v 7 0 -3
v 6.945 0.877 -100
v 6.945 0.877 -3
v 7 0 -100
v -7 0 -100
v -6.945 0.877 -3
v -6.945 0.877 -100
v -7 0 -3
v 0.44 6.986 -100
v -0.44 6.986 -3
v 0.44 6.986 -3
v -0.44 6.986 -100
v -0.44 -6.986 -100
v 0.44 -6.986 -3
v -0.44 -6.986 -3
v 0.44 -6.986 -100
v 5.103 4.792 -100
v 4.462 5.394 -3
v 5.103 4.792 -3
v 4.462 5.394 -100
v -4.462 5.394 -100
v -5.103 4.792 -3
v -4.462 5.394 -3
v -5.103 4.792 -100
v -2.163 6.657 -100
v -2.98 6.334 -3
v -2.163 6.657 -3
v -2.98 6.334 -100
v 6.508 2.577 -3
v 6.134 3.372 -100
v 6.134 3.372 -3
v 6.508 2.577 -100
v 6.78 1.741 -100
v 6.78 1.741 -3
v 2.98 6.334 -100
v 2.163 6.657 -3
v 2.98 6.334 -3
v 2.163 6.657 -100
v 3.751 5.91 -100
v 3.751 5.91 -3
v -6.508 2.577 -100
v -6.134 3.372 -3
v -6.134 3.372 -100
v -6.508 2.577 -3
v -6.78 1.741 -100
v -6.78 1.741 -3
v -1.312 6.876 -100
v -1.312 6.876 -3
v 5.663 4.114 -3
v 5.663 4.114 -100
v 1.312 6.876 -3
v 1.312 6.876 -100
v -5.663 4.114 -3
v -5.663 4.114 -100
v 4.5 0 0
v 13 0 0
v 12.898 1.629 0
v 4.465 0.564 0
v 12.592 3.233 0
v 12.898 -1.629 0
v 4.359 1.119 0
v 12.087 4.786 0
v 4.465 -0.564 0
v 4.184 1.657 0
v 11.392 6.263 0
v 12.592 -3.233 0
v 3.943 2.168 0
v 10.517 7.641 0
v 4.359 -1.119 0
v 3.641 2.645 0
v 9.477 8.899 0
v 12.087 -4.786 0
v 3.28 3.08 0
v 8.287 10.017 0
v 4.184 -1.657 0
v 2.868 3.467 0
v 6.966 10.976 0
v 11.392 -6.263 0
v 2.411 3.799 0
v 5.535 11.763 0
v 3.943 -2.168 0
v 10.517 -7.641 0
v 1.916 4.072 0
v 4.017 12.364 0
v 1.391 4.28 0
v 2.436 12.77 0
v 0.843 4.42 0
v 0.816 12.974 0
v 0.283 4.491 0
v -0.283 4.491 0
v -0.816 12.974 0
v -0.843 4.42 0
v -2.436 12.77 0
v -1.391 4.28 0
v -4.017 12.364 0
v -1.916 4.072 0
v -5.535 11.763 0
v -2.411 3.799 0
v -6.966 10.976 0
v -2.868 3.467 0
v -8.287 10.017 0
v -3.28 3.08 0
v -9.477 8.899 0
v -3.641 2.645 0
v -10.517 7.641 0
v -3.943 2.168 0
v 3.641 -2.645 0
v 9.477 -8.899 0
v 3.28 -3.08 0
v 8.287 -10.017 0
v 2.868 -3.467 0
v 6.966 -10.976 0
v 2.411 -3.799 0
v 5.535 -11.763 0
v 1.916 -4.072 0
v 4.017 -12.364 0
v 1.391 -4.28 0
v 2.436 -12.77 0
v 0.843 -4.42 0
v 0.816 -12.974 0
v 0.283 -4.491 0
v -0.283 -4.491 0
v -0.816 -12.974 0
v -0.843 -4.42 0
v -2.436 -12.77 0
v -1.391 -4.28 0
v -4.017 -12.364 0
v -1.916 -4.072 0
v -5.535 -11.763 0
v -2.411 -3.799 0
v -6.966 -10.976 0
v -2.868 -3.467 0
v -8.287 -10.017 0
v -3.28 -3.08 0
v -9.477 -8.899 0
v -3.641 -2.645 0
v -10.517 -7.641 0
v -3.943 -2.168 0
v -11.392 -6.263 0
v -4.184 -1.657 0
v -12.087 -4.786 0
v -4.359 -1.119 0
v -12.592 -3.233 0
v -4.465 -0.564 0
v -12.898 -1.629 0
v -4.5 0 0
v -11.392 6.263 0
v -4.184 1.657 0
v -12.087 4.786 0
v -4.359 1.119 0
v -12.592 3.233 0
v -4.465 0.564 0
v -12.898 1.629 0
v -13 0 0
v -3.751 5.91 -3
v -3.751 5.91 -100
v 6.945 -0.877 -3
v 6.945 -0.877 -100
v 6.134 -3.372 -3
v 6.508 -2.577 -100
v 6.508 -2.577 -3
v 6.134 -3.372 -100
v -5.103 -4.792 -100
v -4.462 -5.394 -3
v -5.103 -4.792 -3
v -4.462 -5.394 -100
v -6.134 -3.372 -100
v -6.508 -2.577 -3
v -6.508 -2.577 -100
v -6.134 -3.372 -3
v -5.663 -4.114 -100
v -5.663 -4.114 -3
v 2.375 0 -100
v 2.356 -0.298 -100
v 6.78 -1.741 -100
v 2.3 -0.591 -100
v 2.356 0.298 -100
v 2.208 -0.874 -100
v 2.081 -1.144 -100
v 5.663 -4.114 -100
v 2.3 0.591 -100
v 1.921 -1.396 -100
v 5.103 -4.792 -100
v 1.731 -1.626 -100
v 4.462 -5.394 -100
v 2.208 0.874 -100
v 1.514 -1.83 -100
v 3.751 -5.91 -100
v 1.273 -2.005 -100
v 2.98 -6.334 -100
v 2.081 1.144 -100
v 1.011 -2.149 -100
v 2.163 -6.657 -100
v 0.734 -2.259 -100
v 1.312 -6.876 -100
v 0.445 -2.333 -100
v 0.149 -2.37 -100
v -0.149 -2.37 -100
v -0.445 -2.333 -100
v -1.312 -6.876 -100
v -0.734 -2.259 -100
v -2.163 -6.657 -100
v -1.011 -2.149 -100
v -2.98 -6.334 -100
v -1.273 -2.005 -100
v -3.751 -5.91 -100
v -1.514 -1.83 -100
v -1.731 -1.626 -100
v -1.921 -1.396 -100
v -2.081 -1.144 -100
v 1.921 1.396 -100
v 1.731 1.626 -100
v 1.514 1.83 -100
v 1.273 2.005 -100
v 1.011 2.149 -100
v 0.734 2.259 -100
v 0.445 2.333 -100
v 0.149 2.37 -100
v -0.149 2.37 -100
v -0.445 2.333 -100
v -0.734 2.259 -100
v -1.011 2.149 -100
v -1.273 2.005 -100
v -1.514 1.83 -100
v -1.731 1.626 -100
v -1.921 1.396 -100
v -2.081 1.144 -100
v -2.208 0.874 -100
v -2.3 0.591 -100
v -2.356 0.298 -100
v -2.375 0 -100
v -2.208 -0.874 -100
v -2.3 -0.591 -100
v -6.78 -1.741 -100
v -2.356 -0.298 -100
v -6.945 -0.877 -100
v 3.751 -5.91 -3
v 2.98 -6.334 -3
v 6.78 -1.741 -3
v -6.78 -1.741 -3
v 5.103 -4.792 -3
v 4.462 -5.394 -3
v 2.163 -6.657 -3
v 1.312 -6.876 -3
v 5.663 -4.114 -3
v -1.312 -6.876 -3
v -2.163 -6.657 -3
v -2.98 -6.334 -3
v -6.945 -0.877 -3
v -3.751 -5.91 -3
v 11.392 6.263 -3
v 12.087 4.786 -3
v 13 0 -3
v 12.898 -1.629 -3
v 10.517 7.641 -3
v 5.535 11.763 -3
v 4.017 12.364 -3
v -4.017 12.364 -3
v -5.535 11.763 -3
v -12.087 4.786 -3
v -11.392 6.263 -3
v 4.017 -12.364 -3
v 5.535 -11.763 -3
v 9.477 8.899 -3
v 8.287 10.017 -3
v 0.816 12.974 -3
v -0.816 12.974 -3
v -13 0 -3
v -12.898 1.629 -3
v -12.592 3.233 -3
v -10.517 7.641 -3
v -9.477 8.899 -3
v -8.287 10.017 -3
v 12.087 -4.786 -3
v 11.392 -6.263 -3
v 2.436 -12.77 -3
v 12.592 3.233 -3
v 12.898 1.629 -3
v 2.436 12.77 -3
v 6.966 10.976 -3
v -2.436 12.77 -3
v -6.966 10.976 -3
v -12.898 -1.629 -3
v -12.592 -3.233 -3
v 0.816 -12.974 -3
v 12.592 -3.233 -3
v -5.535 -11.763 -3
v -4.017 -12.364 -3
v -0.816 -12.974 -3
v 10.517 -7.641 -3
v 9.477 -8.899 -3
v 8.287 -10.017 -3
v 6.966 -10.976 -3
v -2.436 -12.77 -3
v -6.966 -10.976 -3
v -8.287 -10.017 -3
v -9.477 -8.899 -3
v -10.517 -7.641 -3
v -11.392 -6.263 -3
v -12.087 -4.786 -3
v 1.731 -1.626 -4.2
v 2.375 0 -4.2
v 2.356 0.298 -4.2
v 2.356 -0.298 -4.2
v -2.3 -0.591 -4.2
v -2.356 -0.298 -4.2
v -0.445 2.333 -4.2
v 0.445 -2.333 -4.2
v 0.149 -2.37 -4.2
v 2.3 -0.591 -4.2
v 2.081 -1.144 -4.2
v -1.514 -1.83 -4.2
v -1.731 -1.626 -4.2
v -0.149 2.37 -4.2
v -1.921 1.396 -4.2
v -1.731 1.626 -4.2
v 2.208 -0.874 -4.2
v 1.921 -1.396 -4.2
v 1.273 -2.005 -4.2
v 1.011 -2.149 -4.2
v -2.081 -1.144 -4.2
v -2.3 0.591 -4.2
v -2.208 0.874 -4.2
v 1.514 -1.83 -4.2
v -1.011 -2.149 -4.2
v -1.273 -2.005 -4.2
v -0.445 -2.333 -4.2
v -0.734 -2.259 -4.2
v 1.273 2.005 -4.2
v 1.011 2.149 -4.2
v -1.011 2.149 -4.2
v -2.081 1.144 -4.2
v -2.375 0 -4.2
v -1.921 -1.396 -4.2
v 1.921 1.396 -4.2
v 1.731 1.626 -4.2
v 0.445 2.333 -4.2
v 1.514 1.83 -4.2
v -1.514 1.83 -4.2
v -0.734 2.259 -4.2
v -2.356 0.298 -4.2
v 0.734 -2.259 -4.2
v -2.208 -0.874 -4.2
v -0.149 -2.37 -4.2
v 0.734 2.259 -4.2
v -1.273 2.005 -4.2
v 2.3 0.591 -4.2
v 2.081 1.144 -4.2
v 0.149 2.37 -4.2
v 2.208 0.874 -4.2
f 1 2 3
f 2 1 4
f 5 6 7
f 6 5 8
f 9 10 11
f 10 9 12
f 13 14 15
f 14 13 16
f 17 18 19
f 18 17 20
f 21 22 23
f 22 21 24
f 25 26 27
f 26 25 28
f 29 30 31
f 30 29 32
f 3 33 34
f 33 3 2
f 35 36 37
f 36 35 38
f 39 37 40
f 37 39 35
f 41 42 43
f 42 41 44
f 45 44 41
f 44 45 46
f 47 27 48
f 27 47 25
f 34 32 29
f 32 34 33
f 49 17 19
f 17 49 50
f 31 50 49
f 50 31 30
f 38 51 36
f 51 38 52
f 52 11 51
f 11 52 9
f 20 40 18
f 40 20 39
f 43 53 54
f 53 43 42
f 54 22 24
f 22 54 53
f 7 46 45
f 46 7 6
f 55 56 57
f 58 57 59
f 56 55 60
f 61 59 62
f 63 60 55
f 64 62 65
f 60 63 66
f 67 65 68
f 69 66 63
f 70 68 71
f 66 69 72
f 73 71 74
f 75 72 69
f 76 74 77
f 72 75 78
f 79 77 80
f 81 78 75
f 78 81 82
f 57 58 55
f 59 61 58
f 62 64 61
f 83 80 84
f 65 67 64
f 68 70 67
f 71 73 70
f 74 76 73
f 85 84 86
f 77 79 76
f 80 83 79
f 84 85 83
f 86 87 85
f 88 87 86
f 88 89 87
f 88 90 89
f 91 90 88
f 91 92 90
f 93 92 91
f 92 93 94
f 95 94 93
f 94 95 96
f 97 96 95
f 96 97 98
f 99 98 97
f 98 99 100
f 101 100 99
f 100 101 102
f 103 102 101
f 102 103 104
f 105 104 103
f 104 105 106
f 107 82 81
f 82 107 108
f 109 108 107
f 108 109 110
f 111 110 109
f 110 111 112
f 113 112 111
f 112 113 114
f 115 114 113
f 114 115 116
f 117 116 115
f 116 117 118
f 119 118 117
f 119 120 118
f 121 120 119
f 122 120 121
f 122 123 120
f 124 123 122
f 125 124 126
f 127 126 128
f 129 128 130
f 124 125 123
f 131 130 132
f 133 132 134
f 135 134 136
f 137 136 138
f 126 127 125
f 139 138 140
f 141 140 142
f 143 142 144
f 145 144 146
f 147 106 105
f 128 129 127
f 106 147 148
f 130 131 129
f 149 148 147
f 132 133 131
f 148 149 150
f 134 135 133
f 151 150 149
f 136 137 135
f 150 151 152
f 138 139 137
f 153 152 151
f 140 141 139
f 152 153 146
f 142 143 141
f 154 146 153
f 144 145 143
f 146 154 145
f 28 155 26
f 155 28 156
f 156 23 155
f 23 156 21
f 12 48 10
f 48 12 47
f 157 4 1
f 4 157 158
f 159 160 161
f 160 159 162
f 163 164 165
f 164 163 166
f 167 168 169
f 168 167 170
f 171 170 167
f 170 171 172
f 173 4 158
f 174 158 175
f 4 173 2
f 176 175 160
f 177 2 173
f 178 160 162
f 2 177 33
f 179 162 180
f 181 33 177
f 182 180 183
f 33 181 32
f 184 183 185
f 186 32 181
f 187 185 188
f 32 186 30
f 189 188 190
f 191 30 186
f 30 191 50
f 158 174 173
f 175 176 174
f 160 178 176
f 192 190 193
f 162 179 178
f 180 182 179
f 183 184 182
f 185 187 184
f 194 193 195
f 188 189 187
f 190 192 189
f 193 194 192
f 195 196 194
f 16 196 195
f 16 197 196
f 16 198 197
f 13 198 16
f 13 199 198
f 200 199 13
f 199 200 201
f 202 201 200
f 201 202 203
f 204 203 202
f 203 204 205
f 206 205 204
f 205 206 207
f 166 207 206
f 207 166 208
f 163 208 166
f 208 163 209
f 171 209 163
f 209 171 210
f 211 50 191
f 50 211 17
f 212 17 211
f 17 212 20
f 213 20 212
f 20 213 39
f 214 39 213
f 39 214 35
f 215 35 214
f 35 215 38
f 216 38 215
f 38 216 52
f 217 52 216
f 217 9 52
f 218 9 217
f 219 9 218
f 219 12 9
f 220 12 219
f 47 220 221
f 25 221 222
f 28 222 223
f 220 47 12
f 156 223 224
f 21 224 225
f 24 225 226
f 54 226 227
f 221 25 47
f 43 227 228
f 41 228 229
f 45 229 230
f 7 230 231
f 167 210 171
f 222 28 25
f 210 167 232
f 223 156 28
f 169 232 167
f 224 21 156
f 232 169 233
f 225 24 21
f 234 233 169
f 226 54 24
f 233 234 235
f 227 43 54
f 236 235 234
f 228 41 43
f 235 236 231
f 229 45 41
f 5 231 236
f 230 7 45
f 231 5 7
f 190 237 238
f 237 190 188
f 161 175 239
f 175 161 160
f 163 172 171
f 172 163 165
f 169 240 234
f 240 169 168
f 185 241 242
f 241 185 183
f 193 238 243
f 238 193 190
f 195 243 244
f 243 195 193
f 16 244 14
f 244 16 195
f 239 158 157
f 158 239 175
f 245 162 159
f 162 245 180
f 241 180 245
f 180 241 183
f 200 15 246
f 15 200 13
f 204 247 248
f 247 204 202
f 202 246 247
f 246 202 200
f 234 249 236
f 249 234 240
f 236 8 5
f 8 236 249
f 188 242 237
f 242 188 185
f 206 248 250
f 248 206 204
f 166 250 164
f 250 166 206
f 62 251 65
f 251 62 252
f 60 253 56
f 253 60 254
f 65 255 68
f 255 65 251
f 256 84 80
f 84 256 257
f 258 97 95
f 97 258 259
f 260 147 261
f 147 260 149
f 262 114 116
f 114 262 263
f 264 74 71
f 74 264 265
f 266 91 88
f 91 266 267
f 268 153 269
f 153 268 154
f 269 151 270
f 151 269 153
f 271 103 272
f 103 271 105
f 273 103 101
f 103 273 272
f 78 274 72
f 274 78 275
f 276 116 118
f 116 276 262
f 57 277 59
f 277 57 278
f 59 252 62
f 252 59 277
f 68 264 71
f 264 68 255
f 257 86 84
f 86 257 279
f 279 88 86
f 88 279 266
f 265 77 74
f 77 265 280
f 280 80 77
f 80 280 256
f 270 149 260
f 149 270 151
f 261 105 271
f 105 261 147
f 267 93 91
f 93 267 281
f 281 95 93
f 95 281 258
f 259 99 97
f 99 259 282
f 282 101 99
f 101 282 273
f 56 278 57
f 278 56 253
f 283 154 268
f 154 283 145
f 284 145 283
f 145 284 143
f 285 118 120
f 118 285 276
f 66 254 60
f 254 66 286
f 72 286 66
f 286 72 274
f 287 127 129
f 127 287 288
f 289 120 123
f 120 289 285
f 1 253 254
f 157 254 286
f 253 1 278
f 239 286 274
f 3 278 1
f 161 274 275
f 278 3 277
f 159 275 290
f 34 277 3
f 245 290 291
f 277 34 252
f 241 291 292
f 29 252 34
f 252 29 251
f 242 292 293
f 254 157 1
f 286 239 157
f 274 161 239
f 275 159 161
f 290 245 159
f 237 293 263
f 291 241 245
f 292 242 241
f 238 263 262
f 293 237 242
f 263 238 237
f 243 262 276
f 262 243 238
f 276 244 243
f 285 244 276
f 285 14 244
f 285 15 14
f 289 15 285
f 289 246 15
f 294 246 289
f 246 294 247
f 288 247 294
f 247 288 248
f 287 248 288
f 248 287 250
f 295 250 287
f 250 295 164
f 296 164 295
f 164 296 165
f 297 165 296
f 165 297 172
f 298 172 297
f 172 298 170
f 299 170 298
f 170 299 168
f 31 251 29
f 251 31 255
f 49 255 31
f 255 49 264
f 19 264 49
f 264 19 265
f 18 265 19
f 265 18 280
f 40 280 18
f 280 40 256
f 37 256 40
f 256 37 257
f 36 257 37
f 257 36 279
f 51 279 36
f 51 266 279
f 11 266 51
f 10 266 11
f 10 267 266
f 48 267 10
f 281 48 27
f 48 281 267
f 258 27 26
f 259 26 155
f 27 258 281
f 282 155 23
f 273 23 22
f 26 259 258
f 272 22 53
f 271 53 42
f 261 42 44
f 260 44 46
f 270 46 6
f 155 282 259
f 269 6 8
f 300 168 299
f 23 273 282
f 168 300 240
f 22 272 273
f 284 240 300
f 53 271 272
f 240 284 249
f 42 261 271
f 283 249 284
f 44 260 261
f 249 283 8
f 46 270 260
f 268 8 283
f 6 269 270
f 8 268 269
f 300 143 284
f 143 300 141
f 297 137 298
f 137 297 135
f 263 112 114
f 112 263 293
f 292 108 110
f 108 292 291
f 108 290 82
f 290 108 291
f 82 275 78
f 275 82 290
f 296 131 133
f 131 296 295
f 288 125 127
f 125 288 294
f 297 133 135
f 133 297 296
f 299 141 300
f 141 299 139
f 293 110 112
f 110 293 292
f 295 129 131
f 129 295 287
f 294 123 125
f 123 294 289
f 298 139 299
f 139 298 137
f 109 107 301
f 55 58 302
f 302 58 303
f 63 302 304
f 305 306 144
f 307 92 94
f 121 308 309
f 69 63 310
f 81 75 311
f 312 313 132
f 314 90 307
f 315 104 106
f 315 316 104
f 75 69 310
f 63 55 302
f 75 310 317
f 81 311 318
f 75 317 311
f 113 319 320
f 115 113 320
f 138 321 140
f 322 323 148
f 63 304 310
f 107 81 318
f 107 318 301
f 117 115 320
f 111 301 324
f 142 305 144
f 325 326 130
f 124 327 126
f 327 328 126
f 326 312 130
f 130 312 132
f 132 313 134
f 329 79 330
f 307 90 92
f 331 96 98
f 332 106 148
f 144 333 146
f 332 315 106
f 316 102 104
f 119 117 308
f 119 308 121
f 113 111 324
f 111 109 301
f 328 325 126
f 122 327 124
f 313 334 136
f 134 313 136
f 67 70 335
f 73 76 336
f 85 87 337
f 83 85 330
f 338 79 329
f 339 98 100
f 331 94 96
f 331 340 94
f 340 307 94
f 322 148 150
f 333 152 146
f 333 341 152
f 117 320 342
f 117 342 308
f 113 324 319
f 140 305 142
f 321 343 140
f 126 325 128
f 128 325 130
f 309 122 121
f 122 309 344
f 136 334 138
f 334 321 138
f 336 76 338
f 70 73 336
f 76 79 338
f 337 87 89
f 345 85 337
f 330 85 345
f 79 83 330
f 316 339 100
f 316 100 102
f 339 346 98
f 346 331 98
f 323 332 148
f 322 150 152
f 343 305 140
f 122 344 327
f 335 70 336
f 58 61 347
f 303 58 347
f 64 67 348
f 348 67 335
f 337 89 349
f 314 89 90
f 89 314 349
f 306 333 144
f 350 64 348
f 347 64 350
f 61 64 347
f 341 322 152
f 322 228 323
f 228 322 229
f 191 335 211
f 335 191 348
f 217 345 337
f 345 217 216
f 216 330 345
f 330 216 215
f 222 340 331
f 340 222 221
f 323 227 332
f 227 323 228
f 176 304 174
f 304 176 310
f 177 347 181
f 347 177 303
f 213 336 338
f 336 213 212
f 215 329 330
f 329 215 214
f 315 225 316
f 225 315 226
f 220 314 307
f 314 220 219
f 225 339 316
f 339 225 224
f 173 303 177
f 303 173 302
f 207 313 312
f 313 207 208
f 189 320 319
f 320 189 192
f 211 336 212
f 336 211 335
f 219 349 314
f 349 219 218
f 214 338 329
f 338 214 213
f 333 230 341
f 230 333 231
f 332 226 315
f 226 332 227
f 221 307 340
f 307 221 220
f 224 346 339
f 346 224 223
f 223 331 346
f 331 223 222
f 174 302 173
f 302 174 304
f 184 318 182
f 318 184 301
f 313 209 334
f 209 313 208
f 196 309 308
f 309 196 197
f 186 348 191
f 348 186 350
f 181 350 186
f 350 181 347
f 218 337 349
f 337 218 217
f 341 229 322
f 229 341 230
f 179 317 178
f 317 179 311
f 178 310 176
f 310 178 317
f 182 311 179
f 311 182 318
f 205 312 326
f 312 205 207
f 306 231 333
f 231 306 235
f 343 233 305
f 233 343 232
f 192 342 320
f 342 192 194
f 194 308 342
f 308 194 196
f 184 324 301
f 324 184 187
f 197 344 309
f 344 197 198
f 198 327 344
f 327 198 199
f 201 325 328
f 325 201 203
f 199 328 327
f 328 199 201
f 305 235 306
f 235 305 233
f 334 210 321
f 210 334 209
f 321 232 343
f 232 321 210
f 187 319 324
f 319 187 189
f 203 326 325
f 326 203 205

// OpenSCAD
$fn = 50;


difference() {
	union() {
		translate(v = [0, 0, -100.0000000000]) {
			cylinder(h = 100, r = 7.0000000000);
		}
		translate(v = [0, 0, -3.0000000000]) {
			cylinder(h = 3, r = 13.0000000000);
		}
	}
	union() {
		translate(v = [0, 0, 0]) {
			rotate(a = [0, 0, 0]) {
				difference() {
					union() {
						#translate(v = [0, 0, -100.0000000000]) {
							cylinder(h = 100, r = 2.2500000000);
						}
						#translate(v = [0, 0, -4.2000000000]) {
							cylinder(h = 4.2000000000, r = 7.0000000000, r1 = 2.3750000000, r2 = 4.5000000000);
						}
						#translate(v = [0, 0, -100.0000000000]) {
							cylinder(h = 100, r = 2.3750000000);
						}
						#translate(v = [0, 0, -100.0000000000]) {
							cylinder(h = 100, r = 2.2500000000);
						}
					}
					union();
				}
			}
		}
	}
}
